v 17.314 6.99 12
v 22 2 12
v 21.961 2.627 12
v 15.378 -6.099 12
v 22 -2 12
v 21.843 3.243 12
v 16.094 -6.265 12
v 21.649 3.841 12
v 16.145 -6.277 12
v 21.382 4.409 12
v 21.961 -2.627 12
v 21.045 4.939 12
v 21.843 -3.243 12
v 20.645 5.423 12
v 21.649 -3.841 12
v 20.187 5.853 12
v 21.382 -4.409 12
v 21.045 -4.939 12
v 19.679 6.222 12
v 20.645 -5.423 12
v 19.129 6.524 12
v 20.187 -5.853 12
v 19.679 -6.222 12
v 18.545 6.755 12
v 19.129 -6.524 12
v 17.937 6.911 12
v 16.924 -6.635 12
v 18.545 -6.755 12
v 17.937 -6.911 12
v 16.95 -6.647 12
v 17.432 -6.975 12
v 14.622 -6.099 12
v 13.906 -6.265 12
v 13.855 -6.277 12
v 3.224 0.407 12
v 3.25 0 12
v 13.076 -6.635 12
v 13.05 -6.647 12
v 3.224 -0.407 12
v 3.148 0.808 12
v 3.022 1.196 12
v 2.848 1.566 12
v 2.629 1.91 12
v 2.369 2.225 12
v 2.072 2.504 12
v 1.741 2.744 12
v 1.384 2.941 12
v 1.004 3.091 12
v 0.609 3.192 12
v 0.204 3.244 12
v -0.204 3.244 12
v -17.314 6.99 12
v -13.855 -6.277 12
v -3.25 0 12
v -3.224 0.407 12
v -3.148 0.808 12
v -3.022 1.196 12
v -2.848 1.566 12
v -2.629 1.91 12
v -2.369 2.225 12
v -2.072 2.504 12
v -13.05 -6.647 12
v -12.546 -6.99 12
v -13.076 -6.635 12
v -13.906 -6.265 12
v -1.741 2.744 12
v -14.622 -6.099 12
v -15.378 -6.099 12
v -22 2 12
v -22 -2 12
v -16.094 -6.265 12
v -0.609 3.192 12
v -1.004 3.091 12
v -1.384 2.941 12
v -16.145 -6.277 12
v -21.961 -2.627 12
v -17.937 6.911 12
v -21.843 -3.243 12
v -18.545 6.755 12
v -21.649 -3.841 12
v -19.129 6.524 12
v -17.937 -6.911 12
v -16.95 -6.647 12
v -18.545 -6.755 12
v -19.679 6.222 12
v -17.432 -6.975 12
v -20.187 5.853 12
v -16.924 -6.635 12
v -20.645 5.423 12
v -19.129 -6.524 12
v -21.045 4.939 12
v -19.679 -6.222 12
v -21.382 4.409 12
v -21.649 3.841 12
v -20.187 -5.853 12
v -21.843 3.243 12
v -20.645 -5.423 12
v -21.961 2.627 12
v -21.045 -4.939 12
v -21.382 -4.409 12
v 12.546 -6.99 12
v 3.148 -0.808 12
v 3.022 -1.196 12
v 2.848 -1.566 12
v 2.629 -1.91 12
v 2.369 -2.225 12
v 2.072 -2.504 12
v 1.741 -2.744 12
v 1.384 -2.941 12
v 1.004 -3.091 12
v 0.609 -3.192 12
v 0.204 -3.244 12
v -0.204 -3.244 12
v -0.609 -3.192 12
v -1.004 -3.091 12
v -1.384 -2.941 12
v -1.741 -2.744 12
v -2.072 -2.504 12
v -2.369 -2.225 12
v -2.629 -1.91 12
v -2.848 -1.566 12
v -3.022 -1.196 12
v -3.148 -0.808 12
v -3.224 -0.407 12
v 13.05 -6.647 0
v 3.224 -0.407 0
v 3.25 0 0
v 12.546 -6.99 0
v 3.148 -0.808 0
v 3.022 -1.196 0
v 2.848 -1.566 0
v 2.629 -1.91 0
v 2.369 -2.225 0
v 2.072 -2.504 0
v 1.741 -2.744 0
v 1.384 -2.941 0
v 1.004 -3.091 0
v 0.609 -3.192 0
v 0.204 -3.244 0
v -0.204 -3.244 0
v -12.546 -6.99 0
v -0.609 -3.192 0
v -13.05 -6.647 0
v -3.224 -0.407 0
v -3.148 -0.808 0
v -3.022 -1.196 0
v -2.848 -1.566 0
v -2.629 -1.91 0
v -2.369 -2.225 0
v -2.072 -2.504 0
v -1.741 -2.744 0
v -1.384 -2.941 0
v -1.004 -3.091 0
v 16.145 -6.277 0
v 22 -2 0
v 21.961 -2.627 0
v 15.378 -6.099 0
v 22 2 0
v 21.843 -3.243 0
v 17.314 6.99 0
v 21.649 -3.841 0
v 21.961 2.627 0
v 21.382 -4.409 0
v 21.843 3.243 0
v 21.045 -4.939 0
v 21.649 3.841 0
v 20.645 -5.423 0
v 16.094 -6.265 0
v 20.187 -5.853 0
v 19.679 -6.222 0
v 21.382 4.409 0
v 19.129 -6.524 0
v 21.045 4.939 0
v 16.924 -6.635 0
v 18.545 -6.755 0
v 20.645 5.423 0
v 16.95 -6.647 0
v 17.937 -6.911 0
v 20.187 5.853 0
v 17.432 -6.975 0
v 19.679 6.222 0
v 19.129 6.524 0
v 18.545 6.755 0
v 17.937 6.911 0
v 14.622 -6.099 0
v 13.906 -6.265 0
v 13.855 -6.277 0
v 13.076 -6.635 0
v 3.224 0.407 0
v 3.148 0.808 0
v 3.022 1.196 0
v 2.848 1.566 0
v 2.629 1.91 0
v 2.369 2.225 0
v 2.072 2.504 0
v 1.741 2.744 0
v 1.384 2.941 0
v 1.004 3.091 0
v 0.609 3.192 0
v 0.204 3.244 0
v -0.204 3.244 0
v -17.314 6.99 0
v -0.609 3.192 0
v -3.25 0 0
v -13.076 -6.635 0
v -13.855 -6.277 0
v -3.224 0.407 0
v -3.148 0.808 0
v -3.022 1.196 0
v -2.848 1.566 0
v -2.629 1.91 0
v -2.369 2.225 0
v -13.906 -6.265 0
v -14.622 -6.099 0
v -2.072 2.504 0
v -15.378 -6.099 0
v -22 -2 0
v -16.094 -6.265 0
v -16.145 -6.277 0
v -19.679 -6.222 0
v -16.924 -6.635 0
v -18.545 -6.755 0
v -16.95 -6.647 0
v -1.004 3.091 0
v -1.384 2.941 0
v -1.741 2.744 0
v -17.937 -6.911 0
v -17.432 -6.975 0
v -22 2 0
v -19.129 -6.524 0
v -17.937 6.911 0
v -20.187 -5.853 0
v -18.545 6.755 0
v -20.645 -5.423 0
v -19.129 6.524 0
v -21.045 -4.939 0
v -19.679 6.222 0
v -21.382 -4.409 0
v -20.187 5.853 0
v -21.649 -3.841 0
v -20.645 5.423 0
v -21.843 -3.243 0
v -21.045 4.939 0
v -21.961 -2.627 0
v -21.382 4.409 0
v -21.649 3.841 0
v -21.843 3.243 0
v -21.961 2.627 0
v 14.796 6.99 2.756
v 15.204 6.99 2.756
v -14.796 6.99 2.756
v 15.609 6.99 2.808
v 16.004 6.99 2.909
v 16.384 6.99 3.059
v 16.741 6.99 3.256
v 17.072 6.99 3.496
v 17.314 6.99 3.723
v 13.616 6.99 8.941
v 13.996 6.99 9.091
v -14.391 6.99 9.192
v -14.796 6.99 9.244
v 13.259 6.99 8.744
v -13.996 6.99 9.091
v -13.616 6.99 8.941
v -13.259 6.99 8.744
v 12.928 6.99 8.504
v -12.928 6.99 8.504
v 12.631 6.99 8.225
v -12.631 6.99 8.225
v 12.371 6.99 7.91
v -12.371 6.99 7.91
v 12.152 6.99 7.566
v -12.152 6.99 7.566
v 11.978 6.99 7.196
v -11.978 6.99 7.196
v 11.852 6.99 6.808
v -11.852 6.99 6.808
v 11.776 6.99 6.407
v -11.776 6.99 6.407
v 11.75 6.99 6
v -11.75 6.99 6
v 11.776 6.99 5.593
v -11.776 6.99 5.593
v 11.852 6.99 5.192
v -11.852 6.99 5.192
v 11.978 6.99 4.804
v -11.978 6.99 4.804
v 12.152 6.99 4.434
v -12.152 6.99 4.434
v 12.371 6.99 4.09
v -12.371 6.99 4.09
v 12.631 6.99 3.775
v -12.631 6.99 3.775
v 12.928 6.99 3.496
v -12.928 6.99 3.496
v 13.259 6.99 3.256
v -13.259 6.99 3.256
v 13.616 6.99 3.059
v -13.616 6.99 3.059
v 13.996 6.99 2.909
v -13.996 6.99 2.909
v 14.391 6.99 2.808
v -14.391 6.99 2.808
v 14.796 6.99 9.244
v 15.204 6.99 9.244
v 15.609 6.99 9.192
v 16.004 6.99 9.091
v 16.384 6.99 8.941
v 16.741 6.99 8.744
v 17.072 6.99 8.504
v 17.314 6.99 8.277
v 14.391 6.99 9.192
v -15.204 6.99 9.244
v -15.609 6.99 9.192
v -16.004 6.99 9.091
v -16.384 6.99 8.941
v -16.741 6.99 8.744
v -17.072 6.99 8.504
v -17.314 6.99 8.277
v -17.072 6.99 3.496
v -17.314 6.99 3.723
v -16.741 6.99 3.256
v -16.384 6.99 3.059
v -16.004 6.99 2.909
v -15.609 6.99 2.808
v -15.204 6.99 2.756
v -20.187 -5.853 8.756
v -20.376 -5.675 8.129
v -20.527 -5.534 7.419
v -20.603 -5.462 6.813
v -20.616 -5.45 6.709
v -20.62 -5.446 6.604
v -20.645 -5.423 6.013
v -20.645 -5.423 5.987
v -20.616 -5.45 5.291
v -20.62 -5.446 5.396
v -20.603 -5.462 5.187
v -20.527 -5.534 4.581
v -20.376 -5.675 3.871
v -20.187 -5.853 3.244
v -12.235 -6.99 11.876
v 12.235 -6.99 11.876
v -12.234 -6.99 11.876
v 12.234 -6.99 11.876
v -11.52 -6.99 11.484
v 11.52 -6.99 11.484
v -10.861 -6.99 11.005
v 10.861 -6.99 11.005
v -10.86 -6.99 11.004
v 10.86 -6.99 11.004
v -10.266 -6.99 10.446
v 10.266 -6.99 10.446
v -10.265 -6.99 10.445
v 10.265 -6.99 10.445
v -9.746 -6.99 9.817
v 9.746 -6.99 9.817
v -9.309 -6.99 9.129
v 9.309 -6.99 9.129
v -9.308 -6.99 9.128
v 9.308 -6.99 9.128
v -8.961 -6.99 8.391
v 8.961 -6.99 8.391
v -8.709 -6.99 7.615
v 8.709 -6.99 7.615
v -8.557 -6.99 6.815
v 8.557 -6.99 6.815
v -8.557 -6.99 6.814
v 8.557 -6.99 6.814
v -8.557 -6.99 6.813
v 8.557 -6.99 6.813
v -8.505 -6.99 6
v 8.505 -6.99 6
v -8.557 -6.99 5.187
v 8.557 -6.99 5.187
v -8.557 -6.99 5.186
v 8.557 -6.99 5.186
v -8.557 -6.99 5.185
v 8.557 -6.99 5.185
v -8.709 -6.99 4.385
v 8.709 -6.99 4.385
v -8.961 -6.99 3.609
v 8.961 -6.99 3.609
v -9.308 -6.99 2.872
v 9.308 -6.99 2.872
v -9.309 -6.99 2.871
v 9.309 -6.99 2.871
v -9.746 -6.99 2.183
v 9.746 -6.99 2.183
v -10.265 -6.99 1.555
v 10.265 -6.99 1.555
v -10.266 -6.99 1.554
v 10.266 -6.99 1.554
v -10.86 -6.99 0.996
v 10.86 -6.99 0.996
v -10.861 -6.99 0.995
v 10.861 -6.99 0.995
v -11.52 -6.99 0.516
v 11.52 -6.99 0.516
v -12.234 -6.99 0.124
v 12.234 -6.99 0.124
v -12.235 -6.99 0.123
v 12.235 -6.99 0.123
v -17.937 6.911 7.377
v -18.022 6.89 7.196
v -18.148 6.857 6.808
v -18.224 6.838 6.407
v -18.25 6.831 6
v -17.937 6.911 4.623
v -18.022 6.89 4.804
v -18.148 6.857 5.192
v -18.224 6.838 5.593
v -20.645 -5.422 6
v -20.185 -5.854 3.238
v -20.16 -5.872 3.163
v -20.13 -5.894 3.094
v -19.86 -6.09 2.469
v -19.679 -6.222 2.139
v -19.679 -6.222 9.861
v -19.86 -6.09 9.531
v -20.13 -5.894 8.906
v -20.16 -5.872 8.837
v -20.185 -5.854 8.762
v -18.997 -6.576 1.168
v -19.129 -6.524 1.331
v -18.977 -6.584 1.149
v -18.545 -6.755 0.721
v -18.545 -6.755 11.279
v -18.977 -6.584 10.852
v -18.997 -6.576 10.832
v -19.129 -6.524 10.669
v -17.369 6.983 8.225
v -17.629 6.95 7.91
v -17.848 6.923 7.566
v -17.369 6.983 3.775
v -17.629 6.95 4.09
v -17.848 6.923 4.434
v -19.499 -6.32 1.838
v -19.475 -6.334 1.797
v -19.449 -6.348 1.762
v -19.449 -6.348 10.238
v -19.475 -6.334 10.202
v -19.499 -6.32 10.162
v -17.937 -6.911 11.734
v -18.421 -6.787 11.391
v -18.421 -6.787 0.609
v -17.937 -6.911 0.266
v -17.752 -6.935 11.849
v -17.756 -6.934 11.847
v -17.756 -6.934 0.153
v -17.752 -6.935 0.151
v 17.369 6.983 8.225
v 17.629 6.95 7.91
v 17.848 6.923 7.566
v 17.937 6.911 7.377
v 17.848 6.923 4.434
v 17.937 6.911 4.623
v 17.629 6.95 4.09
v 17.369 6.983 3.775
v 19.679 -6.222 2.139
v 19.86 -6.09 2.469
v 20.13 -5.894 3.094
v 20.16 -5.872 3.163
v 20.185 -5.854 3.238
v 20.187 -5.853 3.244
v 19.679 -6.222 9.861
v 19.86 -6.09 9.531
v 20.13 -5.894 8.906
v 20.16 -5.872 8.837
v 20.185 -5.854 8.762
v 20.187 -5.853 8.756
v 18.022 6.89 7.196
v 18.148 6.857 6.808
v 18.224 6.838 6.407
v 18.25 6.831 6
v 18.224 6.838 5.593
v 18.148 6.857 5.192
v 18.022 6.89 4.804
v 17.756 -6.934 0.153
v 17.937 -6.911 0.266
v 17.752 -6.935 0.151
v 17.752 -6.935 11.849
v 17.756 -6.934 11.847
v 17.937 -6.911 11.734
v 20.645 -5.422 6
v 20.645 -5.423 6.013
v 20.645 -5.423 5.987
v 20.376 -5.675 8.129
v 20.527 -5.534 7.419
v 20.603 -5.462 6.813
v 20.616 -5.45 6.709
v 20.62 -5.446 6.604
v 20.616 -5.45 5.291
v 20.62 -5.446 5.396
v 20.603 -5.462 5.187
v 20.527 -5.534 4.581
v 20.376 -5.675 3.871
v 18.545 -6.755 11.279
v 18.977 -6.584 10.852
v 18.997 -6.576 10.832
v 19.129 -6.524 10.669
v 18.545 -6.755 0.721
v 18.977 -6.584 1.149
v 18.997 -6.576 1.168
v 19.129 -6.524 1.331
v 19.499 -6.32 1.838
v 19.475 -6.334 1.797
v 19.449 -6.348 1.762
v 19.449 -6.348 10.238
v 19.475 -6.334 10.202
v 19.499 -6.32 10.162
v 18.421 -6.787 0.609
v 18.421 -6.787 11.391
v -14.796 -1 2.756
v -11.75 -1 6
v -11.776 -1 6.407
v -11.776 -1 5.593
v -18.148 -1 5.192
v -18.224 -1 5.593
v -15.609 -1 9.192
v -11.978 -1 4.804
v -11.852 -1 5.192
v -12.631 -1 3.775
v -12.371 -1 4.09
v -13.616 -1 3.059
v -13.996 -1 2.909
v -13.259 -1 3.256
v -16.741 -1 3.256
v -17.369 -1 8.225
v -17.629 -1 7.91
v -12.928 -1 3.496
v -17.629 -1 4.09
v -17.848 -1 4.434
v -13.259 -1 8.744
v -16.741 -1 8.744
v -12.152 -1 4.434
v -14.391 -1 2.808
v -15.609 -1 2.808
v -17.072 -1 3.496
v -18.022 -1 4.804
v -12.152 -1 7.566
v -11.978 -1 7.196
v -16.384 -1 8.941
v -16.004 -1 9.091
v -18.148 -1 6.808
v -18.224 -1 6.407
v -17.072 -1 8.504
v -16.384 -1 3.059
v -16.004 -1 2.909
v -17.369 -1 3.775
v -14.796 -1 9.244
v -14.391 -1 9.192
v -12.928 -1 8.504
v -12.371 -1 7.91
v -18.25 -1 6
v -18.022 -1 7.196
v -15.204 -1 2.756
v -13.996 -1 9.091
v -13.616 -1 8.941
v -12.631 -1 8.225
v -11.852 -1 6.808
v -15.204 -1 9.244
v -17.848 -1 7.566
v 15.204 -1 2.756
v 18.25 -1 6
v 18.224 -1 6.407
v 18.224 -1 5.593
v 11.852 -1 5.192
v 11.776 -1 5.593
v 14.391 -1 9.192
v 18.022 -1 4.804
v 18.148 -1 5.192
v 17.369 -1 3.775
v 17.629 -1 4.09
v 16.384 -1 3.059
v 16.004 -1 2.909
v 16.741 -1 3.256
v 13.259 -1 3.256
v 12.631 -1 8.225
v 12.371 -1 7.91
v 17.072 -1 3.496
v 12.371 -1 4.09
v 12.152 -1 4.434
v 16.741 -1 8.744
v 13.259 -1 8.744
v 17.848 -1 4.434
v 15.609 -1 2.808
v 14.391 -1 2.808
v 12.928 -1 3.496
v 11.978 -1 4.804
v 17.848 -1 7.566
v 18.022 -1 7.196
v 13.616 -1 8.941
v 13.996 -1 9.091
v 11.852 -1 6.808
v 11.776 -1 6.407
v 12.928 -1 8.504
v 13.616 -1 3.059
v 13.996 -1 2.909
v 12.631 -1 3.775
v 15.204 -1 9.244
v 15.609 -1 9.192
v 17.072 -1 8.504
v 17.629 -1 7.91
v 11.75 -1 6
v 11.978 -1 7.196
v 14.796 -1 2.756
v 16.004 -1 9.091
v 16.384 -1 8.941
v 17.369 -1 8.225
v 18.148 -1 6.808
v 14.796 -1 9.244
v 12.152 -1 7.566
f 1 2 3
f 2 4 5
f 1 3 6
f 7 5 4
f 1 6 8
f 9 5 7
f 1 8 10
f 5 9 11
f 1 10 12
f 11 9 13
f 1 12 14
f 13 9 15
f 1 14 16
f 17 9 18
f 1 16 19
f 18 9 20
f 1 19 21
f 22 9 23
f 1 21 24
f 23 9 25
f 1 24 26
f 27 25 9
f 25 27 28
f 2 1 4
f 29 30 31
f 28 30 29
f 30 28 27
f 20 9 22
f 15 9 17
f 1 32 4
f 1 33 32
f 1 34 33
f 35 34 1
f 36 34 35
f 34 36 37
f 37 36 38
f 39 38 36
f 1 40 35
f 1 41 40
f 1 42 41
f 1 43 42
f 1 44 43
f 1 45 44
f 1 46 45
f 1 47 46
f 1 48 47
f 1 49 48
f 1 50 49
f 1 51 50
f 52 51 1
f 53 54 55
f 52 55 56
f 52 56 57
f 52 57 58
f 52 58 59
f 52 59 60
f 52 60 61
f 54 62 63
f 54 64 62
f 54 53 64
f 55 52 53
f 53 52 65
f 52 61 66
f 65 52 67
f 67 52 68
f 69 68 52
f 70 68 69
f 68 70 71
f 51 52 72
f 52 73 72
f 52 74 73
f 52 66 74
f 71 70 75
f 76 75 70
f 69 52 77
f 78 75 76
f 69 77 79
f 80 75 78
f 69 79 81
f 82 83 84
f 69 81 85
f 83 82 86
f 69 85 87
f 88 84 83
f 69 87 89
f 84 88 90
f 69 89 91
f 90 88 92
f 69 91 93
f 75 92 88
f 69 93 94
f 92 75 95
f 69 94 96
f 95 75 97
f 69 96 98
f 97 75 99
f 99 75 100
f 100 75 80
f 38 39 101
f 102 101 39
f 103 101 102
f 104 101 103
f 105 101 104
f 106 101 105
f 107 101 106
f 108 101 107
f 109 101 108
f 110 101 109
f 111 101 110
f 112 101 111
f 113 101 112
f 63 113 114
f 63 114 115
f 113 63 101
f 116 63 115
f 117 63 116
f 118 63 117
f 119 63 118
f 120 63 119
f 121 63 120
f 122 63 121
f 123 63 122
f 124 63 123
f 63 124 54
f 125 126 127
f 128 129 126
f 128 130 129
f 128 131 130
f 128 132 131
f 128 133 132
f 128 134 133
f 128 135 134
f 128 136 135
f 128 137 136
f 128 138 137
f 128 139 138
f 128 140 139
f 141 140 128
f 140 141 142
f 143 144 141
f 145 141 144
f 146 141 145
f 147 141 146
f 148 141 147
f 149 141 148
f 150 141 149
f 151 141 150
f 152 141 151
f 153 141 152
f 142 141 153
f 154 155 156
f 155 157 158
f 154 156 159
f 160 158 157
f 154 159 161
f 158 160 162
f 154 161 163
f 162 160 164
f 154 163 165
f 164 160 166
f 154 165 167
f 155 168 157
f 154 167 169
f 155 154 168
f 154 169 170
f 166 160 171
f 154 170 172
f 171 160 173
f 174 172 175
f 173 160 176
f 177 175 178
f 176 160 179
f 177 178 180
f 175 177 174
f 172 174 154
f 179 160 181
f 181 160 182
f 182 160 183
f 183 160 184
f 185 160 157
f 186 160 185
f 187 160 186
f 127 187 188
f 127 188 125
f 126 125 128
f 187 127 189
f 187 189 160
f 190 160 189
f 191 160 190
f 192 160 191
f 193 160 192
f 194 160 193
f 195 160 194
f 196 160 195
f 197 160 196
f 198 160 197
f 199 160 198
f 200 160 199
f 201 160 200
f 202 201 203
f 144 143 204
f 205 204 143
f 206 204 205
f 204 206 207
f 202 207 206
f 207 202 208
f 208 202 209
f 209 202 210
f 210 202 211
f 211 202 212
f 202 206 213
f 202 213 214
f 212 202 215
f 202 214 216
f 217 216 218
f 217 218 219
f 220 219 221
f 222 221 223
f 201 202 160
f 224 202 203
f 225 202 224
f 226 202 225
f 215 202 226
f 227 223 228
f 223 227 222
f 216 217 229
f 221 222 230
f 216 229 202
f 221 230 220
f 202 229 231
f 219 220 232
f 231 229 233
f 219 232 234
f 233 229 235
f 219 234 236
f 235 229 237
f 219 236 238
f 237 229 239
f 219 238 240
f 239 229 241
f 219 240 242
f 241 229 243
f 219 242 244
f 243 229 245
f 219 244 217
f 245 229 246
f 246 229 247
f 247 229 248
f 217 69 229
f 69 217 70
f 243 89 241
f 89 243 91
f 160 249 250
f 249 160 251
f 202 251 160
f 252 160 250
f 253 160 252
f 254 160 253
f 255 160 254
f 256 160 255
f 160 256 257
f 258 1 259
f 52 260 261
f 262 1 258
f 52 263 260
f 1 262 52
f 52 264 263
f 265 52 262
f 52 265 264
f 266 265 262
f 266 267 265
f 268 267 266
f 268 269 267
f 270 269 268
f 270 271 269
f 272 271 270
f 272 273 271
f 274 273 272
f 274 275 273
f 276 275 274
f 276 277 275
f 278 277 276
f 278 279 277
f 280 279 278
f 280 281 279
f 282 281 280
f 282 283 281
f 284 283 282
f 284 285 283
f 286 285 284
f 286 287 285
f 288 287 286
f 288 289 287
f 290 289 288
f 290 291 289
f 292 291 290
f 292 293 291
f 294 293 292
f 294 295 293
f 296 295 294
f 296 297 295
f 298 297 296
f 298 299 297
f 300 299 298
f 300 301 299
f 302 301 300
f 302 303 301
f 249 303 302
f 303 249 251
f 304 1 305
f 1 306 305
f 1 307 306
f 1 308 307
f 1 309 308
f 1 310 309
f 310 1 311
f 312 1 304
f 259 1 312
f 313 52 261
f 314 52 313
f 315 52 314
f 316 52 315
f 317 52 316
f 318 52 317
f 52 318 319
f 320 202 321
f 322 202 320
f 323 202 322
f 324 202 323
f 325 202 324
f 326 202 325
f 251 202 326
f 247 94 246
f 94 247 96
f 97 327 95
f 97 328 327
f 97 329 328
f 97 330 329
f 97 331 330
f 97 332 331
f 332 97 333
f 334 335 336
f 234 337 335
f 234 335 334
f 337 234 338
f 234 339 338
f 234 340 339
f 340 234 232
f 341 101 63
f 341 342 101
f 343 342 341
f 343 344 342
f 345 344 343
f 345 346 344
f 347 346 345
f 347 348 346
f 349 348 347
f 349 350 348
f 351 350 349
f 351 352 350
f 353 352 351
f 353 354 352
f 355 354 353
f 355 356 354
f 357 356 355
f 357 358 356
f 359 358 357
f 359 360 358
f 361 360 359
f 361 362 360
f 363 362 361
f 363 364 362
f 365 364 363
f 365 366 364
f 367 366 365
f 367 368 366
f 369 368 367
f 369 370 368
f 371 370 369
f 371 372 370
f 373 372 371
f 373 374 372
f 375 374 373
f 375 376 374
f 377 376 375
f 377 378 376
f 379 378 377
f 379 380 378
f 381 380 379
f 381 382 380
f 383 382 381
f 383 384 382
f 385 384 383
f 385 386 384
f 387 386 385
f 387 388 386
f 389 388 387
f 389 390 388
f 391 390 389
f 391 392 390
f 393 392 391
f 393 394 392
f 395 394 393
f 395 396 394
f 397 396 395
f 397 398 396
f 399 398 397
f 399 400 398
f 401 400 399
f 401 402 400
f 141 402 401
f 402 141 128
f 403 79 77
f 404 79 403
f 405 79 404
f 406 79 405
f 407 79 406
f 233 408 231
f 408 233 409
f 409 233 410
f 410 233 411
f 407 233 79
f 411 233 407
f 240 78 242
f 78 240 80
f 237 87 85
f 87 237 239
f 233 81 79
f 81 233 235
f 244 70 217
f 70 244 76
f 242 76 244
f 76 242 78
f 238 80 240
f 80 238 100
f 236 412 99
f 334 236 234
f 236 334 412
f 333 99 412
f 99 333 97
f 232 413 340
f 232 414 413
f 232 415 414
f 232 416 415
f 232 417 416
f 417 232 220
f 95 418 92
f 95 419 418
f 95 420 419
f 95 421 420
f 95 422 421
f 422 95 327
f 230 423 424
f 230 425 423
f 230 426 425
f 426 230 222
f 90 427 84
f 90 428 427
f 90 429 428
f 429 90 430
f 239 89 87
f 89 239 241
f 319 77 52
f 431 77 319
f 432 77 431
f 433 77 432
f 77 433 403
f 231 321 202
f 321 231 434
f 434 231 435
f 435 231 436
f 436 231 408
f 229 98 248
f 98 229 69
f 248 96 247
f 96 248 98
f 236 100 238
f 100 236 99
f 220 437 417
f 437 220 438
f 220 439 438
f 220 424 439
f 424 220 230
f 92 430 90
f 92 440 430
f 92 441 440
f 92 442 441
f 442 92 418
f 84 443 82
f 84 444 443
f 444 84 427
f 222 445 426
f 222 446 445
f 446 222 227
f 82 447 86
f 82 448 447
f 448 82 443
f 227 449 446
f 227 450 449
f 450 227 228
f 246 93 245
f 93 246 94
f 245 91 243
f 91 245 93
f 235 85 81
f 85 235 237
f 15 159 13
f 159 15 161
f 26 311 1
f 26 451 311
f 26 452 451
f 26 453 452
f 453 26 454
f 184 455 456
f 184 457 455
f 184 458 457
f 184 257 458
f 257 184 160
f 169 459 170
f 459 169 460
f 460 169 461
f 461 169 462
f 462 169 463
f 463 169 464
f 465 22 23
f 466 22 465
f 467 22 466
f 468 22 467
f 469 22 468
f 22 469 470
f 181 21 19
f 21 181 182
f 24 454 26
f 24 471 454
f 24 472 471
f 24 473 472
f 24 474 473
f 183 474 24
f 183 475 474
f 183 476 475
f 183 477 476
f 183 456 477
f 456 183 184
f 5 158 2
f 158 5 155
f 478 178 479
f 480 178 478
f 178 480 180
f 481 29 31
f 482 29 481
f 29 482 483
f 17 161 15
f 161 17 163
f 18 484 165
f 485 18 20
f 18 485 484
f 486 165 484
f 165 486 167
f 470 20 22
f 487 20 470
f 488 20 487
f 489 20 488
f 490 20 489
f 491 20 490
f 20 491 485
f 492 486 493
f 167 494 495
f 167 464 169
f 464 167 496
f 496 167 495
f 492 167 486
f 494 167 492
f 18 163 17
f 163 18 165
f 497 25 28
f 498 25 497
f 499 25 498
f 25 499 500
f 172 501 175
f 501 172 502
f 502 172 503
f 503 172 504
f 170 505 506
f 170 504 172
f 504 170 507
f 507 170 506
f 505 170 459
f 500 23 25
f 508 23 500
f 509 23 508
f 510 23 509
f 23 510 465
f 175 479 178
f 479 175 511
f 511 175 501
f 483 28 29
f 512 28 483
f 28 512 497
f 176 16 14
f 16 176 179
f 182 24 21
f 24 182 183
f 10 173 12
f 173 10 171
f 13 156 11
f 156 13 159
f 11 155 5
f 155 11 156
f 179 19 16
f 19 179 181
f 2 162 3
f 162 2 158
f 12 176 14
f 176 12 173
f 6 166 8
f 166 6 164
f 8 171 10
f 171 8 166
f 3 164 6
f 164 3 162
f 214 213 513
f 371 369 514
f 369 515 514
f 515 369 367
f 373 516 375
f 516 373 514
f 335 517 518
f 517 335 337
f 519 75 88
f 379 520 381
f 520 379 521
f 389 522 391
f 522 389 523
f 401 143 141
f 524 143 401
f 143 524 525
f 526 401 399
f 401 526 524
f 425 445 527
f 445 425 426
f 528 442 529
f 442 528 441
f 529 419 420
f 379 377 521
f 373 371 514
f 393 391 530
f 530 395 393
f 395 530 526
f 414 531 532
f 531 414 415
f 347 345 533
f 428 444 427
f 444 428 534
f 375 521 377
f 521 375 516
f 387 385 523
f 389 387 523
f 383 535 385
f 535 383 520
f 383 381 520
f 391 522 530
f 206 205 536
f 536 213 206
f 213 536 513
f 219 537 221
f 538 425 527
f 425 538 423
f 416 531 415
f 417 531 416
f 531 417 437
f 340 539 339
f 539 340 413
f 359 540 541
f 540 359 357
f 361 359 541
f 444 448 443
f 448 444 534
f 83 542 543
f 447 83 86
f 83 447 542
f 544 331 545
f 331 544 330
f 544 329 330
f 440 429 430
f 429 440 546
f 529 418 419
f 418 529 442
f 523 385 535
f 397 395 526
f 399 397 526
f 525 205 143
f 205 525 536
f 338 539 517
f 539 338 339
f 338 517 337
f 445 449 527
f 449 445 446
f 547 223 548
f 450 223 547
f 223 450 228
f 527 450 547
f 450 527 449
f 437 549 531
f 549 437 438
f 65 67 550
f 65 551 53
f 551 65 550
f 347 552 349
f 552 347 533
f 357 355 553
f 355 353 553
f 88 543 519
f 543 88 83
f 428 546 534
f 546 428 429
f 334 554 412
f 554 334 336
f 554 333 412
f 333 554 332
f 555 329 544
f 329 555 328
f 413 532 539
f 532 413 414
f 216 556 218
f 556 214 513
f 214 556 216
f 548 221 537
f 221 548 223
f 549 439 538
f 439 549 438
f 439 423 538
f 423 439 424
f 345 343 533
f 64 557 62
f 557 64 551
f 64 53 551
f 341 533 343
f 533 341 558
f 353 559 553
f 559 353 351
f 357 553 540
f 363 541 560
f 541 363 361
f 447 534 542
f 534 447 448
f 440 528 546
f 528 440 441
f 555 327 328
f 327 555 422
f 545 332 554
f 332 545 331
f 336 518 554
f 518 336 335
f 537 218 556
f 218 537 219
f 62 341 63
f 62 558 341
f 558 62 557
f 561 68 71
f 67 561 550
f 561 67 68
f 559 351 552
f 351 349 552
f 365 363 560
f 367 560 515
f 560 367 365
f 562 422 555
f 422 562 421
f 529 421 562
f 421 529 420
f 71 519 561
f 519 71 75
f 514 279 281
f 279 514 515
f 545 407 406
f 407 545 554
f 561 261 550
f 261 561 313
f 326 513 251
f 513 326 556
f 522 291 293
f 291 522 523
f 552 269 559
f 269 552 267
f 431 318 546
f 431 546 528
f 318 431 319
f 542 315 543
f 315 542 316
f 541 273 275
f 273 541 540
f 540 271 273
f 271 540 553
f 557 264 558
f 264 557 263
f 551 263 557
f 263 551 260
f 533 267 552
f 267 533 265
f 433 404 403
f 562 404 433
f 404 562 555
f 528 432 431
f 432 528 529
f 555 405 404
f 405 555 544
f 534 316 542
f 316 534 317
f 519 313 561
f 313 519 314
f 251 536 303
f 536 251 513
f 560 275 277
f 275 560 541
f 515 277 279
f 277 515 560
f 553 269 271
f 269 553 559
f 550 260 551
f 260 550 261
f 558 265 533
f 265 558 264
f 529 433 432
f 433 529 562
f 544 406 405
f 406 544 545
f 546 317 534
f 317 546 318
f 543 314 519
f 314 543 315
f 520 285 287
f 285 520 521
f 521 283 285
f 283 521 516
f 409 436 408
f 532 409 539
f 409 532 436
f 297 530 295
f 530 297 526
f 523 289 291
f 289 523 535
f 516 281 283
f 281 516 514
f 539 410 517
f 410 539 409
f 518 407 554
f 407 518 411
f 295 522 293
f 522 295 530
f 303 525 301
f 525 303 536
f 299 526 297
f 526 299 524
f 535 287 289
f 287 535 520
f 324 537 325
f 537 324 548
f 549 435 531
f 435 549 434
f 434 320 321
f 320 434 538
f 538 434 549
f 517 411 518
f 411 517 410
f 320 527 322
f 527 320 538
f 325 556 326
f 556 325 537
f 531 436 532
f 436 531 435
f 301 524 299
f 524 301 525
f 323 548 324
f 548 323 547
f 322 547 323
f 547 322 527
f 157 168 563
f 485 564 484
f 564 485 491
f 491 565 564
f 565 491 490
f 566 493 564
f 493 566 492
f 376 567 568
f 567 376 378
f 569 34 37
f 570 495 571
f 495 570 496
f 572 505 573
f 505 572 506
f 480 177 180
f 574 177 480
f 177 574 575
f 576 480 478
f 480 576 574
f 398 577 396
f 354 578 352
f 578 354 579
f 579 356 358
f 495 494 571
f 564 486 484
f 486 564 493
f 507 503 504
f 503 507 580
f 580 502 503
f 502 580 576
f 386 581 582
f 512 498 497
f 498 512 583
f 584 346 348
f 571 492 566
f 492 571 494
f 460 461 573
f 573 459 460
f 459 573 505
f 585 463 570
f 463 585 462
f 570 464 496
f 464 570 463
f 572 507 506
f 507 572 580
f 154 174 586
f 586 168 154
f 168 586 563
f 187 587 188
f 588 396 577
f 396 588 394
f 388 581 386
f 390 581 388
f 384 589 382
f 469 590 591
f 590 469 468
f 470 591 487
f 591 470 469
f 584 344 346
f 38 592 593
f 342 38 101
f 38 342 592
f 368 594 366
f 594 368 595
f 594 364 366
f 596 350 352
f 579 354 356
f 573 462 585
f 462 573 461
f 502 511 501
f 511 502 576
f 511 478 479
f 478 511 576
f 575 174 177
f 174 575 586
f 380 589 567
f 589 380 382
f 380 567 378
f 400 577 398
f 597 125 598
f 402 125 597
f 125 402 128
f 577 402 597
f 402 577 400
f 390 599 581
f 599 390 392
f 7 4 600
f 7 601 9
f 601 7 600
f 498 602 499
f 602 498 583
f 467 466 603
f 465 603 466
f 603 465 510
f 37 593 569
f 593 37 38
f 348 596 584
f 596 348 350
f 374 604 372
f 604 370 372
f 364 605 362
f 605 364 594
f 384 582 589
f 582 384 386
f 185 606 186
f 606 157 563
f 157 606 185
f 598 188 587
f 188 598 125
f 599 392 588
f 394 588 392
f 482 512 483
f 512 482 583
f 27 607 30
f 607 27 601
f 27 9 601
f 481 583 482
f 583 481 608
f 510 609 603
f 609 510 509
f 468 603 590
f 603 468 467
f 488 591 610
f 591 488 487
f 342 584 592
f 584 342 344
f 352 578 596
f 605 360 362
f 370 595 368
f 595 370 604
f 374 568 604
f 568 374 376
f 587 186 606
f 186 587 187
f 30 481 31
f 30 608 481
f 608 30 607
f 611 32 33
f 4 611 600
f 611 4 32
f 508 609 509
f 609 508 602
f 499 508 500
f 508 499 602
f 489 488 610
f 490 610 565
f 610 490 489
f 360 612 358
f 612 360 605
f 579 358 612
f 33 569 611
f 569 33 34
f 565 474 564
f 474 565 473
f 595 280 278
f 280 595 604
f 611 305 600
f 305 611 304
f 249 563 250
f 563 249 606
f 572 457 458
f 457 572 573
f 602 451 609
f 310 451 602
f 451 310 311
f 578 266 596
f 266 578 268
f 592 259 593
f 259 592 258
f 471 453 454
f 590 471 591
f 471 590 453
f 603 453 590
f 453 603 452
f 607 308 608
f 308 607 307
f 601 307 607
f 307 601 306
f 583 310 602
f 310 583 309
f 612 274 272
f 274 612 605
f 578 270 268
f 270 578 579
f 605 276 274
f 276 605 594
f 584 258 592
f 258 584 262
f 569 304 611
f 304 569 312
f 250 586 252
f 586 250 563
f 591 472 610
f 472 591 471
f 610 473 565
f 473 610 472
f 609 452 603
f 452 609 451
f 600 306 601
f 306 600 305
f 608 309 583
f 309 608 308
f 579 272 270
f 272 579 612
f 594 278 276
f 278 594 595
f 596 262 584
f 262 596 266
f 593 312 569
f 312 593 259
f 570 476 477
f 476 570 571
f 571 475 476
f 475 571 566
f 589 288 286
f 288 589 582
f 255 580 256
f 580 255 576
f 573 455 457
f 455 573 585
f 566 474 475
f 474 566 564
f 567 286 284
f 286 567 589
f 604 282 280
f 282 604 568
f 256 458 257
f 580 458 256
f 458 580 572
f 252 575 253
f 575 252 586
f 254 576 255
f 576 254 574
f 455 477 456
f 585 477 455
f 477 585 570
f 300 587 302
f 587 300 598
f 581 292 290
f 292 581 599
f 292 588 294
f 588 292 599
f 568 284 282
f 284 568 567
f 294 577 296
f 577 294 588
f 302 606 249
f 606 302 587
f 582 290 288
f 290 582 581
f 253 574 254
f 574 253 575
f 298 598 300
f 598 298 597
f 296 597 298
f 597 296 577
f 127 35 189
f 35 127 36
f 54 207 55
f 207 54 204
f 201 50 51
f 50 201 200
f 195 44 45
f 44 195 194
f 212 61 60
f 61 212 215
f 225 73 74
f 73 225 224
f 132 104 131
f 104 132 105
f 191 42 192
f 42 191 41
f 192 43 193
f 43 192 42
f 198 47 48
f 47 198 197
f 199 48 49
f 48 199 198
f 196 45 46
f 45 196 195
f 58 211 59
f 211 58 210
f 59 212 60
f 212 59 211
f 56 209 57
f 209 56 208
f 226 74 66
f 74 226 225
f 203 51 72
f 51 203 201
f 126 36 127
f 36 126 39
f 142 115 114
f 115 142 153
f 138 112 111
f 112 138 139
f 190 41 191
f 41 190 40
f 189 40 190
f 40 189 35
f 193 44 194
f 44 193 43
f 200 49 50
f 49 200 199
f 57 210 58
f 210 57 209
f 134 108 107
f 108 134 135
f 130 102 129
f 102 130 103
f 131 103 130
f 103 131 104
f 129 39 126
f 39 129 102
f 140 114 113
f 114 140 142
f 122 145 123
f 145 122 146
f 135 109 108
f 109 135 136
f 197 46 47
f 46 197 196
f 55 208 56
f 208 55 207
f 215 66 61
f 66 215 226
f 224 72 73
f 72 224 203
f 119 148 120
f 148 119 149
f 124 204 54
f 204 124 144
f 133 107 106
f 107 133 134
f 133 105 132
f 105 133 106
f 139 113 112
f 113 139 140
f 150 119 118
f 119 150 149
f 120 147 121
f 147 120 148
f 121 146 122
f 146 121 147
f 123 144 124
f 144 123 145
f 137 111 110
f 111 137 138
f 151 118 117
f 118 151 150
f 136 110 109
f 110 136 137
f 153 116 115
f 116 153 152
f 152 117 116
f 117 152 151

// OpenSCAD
$fn = 50;


difference() {
	union() {
		cylinder(h = 12, r = 7.0000000000);
		translate(v = [-7.5000000000, 0.0000000000, 0]) {
			hull() {
				translate(v = [-9.5000000000, 2.0000000000, 0]) {
					cylinder(h = 12, r = 5);
				}
				translate(v = [9.5000000000, 2.0000000000, 0]) {
					cylinder(h = 12, r = 5);
				}
				translate(v = [-9.5000000000, -2.0000000000, 0]) {
					cylinder(h = 12, r = 5);
				}
				translate(v = [9.5000000000, -2.0000000000, 0]) {
					cylinder(h = 12, r = 5);
				}
			}
		}
		translate(v = [-7.5000000000, 0.0000000000, 0]) {
			hull() {
				translate(v = [-9.5000000000, 2.0000000000, 0]) {
					cylinder(h = 12, r = 5);
				}
				translate(v = [9.5000000000, 2.0000000000, 0]) {
					cylinder(h = 12, r = 5);
				}
				translate(v = [-9.5000000000, -2.0000000000, 0]) {
					cylinder(h = 12, r = 5);
				}
				translate(v = [9.5000000000, -2.0000000000, 0]) {
					cylinder(h = 12, r = 5);
				}
			}
		}
		translate(v = [7.5000000000, 0.0000000000, 0]) {
			hull() {
				translate(v = [-9.5000000000, 2.0000000000, 0]) {
					cylinder(h = 12, r = 5);
				}
				translate(v = [9.5000000000, 2.0000000000, 0]) {
					cylinder(h = 12, r = 5);
				}
				translate(v = [-9.5000000000, -2.0000000000, 0]) {
					cylinder(h = 12, r = 5);
				}
				translate(v = [9.5000000000, -2.0000000000, 0]) {
					cylinder(h = 12, r = 5);
				}
			}
		}
		translate(v = [7.5000000000, 0.0000000000, 0]) {
			hull() {
				translate(v = [-9.5000000000, 2.0000000000, 0]) {
					cylinder(h = 12, r = 5);
				}
				translate(v = [9.5000000000, 2.0000000000, 0]) {
					cylinder(h = 12, r = 5);
				}
				translate(v = [-9.5000000000, -2.0000000000, 0]) {
					cylinder(h = 12, r = 5);
				}
				translate(v = [9.5000000000, -2.0000000000, 0]) {
					cylinder(h = 12, r = 5);
				}
			}
		}
	}
	union() {
		translate(v = [-15.0000000000, -7.0000000000, 6.0000000000]) {
			rotate(a = [90, 0, 0]) {
				difference() {
					union() {
						#translate(v = [0, 0, -14.0000000000]) {
							cylinder(h = 14, r = 2.2500000000);
						}
						#translate(v = [0, 0, -6]) {
							cylinder(h = 6, r1 = 3.2500000000, r2 = 6.5000000000);
						}
						#translate(v = [0, 0, -14.0000000000]) {
							cylinder(h = 14, r = 3.2500000000);
						}
						#translate(v = [0, 0, -14.0000000000]) {
							cylinder(h = 14, r = 2.2500000000);
						}
					}
					union();
				}
			}
		}
		translate(v = [15.0000000000, -7.0000000000, 6.0000000000]) {
			rotate(a = [90, 0, 0]) {
				difference() {
					union() {
						#translate(v = [0, 0, -14.0000000000]) {
							cylinder(h = 14, r = 2.2500000000);
						}
						#translate(v = [0, 0, -6]) {
							cylinder(h = 6, r1 = 3.2500000000, r2 = 6.5000000000);
						}
						#translate(v = [0, 0, -14.0000000000]) {
							cylinder(h = 14, r = 3.2500000000);
						}
						#translate(v = [0, 0, -14.0000000000]) {
							cylinder(h = 14, r = 2.2500000000);
						}
					}
					union();
				}
			}
		}
		translate(v = [0, 0, -100]) {
			cylinder(h = 200, r = 3.2500000000);
		}
		translate(v = [0, 0, -100]) {
			cylinder(h = 200, r = 1.8000000000);
		}
	}
}
